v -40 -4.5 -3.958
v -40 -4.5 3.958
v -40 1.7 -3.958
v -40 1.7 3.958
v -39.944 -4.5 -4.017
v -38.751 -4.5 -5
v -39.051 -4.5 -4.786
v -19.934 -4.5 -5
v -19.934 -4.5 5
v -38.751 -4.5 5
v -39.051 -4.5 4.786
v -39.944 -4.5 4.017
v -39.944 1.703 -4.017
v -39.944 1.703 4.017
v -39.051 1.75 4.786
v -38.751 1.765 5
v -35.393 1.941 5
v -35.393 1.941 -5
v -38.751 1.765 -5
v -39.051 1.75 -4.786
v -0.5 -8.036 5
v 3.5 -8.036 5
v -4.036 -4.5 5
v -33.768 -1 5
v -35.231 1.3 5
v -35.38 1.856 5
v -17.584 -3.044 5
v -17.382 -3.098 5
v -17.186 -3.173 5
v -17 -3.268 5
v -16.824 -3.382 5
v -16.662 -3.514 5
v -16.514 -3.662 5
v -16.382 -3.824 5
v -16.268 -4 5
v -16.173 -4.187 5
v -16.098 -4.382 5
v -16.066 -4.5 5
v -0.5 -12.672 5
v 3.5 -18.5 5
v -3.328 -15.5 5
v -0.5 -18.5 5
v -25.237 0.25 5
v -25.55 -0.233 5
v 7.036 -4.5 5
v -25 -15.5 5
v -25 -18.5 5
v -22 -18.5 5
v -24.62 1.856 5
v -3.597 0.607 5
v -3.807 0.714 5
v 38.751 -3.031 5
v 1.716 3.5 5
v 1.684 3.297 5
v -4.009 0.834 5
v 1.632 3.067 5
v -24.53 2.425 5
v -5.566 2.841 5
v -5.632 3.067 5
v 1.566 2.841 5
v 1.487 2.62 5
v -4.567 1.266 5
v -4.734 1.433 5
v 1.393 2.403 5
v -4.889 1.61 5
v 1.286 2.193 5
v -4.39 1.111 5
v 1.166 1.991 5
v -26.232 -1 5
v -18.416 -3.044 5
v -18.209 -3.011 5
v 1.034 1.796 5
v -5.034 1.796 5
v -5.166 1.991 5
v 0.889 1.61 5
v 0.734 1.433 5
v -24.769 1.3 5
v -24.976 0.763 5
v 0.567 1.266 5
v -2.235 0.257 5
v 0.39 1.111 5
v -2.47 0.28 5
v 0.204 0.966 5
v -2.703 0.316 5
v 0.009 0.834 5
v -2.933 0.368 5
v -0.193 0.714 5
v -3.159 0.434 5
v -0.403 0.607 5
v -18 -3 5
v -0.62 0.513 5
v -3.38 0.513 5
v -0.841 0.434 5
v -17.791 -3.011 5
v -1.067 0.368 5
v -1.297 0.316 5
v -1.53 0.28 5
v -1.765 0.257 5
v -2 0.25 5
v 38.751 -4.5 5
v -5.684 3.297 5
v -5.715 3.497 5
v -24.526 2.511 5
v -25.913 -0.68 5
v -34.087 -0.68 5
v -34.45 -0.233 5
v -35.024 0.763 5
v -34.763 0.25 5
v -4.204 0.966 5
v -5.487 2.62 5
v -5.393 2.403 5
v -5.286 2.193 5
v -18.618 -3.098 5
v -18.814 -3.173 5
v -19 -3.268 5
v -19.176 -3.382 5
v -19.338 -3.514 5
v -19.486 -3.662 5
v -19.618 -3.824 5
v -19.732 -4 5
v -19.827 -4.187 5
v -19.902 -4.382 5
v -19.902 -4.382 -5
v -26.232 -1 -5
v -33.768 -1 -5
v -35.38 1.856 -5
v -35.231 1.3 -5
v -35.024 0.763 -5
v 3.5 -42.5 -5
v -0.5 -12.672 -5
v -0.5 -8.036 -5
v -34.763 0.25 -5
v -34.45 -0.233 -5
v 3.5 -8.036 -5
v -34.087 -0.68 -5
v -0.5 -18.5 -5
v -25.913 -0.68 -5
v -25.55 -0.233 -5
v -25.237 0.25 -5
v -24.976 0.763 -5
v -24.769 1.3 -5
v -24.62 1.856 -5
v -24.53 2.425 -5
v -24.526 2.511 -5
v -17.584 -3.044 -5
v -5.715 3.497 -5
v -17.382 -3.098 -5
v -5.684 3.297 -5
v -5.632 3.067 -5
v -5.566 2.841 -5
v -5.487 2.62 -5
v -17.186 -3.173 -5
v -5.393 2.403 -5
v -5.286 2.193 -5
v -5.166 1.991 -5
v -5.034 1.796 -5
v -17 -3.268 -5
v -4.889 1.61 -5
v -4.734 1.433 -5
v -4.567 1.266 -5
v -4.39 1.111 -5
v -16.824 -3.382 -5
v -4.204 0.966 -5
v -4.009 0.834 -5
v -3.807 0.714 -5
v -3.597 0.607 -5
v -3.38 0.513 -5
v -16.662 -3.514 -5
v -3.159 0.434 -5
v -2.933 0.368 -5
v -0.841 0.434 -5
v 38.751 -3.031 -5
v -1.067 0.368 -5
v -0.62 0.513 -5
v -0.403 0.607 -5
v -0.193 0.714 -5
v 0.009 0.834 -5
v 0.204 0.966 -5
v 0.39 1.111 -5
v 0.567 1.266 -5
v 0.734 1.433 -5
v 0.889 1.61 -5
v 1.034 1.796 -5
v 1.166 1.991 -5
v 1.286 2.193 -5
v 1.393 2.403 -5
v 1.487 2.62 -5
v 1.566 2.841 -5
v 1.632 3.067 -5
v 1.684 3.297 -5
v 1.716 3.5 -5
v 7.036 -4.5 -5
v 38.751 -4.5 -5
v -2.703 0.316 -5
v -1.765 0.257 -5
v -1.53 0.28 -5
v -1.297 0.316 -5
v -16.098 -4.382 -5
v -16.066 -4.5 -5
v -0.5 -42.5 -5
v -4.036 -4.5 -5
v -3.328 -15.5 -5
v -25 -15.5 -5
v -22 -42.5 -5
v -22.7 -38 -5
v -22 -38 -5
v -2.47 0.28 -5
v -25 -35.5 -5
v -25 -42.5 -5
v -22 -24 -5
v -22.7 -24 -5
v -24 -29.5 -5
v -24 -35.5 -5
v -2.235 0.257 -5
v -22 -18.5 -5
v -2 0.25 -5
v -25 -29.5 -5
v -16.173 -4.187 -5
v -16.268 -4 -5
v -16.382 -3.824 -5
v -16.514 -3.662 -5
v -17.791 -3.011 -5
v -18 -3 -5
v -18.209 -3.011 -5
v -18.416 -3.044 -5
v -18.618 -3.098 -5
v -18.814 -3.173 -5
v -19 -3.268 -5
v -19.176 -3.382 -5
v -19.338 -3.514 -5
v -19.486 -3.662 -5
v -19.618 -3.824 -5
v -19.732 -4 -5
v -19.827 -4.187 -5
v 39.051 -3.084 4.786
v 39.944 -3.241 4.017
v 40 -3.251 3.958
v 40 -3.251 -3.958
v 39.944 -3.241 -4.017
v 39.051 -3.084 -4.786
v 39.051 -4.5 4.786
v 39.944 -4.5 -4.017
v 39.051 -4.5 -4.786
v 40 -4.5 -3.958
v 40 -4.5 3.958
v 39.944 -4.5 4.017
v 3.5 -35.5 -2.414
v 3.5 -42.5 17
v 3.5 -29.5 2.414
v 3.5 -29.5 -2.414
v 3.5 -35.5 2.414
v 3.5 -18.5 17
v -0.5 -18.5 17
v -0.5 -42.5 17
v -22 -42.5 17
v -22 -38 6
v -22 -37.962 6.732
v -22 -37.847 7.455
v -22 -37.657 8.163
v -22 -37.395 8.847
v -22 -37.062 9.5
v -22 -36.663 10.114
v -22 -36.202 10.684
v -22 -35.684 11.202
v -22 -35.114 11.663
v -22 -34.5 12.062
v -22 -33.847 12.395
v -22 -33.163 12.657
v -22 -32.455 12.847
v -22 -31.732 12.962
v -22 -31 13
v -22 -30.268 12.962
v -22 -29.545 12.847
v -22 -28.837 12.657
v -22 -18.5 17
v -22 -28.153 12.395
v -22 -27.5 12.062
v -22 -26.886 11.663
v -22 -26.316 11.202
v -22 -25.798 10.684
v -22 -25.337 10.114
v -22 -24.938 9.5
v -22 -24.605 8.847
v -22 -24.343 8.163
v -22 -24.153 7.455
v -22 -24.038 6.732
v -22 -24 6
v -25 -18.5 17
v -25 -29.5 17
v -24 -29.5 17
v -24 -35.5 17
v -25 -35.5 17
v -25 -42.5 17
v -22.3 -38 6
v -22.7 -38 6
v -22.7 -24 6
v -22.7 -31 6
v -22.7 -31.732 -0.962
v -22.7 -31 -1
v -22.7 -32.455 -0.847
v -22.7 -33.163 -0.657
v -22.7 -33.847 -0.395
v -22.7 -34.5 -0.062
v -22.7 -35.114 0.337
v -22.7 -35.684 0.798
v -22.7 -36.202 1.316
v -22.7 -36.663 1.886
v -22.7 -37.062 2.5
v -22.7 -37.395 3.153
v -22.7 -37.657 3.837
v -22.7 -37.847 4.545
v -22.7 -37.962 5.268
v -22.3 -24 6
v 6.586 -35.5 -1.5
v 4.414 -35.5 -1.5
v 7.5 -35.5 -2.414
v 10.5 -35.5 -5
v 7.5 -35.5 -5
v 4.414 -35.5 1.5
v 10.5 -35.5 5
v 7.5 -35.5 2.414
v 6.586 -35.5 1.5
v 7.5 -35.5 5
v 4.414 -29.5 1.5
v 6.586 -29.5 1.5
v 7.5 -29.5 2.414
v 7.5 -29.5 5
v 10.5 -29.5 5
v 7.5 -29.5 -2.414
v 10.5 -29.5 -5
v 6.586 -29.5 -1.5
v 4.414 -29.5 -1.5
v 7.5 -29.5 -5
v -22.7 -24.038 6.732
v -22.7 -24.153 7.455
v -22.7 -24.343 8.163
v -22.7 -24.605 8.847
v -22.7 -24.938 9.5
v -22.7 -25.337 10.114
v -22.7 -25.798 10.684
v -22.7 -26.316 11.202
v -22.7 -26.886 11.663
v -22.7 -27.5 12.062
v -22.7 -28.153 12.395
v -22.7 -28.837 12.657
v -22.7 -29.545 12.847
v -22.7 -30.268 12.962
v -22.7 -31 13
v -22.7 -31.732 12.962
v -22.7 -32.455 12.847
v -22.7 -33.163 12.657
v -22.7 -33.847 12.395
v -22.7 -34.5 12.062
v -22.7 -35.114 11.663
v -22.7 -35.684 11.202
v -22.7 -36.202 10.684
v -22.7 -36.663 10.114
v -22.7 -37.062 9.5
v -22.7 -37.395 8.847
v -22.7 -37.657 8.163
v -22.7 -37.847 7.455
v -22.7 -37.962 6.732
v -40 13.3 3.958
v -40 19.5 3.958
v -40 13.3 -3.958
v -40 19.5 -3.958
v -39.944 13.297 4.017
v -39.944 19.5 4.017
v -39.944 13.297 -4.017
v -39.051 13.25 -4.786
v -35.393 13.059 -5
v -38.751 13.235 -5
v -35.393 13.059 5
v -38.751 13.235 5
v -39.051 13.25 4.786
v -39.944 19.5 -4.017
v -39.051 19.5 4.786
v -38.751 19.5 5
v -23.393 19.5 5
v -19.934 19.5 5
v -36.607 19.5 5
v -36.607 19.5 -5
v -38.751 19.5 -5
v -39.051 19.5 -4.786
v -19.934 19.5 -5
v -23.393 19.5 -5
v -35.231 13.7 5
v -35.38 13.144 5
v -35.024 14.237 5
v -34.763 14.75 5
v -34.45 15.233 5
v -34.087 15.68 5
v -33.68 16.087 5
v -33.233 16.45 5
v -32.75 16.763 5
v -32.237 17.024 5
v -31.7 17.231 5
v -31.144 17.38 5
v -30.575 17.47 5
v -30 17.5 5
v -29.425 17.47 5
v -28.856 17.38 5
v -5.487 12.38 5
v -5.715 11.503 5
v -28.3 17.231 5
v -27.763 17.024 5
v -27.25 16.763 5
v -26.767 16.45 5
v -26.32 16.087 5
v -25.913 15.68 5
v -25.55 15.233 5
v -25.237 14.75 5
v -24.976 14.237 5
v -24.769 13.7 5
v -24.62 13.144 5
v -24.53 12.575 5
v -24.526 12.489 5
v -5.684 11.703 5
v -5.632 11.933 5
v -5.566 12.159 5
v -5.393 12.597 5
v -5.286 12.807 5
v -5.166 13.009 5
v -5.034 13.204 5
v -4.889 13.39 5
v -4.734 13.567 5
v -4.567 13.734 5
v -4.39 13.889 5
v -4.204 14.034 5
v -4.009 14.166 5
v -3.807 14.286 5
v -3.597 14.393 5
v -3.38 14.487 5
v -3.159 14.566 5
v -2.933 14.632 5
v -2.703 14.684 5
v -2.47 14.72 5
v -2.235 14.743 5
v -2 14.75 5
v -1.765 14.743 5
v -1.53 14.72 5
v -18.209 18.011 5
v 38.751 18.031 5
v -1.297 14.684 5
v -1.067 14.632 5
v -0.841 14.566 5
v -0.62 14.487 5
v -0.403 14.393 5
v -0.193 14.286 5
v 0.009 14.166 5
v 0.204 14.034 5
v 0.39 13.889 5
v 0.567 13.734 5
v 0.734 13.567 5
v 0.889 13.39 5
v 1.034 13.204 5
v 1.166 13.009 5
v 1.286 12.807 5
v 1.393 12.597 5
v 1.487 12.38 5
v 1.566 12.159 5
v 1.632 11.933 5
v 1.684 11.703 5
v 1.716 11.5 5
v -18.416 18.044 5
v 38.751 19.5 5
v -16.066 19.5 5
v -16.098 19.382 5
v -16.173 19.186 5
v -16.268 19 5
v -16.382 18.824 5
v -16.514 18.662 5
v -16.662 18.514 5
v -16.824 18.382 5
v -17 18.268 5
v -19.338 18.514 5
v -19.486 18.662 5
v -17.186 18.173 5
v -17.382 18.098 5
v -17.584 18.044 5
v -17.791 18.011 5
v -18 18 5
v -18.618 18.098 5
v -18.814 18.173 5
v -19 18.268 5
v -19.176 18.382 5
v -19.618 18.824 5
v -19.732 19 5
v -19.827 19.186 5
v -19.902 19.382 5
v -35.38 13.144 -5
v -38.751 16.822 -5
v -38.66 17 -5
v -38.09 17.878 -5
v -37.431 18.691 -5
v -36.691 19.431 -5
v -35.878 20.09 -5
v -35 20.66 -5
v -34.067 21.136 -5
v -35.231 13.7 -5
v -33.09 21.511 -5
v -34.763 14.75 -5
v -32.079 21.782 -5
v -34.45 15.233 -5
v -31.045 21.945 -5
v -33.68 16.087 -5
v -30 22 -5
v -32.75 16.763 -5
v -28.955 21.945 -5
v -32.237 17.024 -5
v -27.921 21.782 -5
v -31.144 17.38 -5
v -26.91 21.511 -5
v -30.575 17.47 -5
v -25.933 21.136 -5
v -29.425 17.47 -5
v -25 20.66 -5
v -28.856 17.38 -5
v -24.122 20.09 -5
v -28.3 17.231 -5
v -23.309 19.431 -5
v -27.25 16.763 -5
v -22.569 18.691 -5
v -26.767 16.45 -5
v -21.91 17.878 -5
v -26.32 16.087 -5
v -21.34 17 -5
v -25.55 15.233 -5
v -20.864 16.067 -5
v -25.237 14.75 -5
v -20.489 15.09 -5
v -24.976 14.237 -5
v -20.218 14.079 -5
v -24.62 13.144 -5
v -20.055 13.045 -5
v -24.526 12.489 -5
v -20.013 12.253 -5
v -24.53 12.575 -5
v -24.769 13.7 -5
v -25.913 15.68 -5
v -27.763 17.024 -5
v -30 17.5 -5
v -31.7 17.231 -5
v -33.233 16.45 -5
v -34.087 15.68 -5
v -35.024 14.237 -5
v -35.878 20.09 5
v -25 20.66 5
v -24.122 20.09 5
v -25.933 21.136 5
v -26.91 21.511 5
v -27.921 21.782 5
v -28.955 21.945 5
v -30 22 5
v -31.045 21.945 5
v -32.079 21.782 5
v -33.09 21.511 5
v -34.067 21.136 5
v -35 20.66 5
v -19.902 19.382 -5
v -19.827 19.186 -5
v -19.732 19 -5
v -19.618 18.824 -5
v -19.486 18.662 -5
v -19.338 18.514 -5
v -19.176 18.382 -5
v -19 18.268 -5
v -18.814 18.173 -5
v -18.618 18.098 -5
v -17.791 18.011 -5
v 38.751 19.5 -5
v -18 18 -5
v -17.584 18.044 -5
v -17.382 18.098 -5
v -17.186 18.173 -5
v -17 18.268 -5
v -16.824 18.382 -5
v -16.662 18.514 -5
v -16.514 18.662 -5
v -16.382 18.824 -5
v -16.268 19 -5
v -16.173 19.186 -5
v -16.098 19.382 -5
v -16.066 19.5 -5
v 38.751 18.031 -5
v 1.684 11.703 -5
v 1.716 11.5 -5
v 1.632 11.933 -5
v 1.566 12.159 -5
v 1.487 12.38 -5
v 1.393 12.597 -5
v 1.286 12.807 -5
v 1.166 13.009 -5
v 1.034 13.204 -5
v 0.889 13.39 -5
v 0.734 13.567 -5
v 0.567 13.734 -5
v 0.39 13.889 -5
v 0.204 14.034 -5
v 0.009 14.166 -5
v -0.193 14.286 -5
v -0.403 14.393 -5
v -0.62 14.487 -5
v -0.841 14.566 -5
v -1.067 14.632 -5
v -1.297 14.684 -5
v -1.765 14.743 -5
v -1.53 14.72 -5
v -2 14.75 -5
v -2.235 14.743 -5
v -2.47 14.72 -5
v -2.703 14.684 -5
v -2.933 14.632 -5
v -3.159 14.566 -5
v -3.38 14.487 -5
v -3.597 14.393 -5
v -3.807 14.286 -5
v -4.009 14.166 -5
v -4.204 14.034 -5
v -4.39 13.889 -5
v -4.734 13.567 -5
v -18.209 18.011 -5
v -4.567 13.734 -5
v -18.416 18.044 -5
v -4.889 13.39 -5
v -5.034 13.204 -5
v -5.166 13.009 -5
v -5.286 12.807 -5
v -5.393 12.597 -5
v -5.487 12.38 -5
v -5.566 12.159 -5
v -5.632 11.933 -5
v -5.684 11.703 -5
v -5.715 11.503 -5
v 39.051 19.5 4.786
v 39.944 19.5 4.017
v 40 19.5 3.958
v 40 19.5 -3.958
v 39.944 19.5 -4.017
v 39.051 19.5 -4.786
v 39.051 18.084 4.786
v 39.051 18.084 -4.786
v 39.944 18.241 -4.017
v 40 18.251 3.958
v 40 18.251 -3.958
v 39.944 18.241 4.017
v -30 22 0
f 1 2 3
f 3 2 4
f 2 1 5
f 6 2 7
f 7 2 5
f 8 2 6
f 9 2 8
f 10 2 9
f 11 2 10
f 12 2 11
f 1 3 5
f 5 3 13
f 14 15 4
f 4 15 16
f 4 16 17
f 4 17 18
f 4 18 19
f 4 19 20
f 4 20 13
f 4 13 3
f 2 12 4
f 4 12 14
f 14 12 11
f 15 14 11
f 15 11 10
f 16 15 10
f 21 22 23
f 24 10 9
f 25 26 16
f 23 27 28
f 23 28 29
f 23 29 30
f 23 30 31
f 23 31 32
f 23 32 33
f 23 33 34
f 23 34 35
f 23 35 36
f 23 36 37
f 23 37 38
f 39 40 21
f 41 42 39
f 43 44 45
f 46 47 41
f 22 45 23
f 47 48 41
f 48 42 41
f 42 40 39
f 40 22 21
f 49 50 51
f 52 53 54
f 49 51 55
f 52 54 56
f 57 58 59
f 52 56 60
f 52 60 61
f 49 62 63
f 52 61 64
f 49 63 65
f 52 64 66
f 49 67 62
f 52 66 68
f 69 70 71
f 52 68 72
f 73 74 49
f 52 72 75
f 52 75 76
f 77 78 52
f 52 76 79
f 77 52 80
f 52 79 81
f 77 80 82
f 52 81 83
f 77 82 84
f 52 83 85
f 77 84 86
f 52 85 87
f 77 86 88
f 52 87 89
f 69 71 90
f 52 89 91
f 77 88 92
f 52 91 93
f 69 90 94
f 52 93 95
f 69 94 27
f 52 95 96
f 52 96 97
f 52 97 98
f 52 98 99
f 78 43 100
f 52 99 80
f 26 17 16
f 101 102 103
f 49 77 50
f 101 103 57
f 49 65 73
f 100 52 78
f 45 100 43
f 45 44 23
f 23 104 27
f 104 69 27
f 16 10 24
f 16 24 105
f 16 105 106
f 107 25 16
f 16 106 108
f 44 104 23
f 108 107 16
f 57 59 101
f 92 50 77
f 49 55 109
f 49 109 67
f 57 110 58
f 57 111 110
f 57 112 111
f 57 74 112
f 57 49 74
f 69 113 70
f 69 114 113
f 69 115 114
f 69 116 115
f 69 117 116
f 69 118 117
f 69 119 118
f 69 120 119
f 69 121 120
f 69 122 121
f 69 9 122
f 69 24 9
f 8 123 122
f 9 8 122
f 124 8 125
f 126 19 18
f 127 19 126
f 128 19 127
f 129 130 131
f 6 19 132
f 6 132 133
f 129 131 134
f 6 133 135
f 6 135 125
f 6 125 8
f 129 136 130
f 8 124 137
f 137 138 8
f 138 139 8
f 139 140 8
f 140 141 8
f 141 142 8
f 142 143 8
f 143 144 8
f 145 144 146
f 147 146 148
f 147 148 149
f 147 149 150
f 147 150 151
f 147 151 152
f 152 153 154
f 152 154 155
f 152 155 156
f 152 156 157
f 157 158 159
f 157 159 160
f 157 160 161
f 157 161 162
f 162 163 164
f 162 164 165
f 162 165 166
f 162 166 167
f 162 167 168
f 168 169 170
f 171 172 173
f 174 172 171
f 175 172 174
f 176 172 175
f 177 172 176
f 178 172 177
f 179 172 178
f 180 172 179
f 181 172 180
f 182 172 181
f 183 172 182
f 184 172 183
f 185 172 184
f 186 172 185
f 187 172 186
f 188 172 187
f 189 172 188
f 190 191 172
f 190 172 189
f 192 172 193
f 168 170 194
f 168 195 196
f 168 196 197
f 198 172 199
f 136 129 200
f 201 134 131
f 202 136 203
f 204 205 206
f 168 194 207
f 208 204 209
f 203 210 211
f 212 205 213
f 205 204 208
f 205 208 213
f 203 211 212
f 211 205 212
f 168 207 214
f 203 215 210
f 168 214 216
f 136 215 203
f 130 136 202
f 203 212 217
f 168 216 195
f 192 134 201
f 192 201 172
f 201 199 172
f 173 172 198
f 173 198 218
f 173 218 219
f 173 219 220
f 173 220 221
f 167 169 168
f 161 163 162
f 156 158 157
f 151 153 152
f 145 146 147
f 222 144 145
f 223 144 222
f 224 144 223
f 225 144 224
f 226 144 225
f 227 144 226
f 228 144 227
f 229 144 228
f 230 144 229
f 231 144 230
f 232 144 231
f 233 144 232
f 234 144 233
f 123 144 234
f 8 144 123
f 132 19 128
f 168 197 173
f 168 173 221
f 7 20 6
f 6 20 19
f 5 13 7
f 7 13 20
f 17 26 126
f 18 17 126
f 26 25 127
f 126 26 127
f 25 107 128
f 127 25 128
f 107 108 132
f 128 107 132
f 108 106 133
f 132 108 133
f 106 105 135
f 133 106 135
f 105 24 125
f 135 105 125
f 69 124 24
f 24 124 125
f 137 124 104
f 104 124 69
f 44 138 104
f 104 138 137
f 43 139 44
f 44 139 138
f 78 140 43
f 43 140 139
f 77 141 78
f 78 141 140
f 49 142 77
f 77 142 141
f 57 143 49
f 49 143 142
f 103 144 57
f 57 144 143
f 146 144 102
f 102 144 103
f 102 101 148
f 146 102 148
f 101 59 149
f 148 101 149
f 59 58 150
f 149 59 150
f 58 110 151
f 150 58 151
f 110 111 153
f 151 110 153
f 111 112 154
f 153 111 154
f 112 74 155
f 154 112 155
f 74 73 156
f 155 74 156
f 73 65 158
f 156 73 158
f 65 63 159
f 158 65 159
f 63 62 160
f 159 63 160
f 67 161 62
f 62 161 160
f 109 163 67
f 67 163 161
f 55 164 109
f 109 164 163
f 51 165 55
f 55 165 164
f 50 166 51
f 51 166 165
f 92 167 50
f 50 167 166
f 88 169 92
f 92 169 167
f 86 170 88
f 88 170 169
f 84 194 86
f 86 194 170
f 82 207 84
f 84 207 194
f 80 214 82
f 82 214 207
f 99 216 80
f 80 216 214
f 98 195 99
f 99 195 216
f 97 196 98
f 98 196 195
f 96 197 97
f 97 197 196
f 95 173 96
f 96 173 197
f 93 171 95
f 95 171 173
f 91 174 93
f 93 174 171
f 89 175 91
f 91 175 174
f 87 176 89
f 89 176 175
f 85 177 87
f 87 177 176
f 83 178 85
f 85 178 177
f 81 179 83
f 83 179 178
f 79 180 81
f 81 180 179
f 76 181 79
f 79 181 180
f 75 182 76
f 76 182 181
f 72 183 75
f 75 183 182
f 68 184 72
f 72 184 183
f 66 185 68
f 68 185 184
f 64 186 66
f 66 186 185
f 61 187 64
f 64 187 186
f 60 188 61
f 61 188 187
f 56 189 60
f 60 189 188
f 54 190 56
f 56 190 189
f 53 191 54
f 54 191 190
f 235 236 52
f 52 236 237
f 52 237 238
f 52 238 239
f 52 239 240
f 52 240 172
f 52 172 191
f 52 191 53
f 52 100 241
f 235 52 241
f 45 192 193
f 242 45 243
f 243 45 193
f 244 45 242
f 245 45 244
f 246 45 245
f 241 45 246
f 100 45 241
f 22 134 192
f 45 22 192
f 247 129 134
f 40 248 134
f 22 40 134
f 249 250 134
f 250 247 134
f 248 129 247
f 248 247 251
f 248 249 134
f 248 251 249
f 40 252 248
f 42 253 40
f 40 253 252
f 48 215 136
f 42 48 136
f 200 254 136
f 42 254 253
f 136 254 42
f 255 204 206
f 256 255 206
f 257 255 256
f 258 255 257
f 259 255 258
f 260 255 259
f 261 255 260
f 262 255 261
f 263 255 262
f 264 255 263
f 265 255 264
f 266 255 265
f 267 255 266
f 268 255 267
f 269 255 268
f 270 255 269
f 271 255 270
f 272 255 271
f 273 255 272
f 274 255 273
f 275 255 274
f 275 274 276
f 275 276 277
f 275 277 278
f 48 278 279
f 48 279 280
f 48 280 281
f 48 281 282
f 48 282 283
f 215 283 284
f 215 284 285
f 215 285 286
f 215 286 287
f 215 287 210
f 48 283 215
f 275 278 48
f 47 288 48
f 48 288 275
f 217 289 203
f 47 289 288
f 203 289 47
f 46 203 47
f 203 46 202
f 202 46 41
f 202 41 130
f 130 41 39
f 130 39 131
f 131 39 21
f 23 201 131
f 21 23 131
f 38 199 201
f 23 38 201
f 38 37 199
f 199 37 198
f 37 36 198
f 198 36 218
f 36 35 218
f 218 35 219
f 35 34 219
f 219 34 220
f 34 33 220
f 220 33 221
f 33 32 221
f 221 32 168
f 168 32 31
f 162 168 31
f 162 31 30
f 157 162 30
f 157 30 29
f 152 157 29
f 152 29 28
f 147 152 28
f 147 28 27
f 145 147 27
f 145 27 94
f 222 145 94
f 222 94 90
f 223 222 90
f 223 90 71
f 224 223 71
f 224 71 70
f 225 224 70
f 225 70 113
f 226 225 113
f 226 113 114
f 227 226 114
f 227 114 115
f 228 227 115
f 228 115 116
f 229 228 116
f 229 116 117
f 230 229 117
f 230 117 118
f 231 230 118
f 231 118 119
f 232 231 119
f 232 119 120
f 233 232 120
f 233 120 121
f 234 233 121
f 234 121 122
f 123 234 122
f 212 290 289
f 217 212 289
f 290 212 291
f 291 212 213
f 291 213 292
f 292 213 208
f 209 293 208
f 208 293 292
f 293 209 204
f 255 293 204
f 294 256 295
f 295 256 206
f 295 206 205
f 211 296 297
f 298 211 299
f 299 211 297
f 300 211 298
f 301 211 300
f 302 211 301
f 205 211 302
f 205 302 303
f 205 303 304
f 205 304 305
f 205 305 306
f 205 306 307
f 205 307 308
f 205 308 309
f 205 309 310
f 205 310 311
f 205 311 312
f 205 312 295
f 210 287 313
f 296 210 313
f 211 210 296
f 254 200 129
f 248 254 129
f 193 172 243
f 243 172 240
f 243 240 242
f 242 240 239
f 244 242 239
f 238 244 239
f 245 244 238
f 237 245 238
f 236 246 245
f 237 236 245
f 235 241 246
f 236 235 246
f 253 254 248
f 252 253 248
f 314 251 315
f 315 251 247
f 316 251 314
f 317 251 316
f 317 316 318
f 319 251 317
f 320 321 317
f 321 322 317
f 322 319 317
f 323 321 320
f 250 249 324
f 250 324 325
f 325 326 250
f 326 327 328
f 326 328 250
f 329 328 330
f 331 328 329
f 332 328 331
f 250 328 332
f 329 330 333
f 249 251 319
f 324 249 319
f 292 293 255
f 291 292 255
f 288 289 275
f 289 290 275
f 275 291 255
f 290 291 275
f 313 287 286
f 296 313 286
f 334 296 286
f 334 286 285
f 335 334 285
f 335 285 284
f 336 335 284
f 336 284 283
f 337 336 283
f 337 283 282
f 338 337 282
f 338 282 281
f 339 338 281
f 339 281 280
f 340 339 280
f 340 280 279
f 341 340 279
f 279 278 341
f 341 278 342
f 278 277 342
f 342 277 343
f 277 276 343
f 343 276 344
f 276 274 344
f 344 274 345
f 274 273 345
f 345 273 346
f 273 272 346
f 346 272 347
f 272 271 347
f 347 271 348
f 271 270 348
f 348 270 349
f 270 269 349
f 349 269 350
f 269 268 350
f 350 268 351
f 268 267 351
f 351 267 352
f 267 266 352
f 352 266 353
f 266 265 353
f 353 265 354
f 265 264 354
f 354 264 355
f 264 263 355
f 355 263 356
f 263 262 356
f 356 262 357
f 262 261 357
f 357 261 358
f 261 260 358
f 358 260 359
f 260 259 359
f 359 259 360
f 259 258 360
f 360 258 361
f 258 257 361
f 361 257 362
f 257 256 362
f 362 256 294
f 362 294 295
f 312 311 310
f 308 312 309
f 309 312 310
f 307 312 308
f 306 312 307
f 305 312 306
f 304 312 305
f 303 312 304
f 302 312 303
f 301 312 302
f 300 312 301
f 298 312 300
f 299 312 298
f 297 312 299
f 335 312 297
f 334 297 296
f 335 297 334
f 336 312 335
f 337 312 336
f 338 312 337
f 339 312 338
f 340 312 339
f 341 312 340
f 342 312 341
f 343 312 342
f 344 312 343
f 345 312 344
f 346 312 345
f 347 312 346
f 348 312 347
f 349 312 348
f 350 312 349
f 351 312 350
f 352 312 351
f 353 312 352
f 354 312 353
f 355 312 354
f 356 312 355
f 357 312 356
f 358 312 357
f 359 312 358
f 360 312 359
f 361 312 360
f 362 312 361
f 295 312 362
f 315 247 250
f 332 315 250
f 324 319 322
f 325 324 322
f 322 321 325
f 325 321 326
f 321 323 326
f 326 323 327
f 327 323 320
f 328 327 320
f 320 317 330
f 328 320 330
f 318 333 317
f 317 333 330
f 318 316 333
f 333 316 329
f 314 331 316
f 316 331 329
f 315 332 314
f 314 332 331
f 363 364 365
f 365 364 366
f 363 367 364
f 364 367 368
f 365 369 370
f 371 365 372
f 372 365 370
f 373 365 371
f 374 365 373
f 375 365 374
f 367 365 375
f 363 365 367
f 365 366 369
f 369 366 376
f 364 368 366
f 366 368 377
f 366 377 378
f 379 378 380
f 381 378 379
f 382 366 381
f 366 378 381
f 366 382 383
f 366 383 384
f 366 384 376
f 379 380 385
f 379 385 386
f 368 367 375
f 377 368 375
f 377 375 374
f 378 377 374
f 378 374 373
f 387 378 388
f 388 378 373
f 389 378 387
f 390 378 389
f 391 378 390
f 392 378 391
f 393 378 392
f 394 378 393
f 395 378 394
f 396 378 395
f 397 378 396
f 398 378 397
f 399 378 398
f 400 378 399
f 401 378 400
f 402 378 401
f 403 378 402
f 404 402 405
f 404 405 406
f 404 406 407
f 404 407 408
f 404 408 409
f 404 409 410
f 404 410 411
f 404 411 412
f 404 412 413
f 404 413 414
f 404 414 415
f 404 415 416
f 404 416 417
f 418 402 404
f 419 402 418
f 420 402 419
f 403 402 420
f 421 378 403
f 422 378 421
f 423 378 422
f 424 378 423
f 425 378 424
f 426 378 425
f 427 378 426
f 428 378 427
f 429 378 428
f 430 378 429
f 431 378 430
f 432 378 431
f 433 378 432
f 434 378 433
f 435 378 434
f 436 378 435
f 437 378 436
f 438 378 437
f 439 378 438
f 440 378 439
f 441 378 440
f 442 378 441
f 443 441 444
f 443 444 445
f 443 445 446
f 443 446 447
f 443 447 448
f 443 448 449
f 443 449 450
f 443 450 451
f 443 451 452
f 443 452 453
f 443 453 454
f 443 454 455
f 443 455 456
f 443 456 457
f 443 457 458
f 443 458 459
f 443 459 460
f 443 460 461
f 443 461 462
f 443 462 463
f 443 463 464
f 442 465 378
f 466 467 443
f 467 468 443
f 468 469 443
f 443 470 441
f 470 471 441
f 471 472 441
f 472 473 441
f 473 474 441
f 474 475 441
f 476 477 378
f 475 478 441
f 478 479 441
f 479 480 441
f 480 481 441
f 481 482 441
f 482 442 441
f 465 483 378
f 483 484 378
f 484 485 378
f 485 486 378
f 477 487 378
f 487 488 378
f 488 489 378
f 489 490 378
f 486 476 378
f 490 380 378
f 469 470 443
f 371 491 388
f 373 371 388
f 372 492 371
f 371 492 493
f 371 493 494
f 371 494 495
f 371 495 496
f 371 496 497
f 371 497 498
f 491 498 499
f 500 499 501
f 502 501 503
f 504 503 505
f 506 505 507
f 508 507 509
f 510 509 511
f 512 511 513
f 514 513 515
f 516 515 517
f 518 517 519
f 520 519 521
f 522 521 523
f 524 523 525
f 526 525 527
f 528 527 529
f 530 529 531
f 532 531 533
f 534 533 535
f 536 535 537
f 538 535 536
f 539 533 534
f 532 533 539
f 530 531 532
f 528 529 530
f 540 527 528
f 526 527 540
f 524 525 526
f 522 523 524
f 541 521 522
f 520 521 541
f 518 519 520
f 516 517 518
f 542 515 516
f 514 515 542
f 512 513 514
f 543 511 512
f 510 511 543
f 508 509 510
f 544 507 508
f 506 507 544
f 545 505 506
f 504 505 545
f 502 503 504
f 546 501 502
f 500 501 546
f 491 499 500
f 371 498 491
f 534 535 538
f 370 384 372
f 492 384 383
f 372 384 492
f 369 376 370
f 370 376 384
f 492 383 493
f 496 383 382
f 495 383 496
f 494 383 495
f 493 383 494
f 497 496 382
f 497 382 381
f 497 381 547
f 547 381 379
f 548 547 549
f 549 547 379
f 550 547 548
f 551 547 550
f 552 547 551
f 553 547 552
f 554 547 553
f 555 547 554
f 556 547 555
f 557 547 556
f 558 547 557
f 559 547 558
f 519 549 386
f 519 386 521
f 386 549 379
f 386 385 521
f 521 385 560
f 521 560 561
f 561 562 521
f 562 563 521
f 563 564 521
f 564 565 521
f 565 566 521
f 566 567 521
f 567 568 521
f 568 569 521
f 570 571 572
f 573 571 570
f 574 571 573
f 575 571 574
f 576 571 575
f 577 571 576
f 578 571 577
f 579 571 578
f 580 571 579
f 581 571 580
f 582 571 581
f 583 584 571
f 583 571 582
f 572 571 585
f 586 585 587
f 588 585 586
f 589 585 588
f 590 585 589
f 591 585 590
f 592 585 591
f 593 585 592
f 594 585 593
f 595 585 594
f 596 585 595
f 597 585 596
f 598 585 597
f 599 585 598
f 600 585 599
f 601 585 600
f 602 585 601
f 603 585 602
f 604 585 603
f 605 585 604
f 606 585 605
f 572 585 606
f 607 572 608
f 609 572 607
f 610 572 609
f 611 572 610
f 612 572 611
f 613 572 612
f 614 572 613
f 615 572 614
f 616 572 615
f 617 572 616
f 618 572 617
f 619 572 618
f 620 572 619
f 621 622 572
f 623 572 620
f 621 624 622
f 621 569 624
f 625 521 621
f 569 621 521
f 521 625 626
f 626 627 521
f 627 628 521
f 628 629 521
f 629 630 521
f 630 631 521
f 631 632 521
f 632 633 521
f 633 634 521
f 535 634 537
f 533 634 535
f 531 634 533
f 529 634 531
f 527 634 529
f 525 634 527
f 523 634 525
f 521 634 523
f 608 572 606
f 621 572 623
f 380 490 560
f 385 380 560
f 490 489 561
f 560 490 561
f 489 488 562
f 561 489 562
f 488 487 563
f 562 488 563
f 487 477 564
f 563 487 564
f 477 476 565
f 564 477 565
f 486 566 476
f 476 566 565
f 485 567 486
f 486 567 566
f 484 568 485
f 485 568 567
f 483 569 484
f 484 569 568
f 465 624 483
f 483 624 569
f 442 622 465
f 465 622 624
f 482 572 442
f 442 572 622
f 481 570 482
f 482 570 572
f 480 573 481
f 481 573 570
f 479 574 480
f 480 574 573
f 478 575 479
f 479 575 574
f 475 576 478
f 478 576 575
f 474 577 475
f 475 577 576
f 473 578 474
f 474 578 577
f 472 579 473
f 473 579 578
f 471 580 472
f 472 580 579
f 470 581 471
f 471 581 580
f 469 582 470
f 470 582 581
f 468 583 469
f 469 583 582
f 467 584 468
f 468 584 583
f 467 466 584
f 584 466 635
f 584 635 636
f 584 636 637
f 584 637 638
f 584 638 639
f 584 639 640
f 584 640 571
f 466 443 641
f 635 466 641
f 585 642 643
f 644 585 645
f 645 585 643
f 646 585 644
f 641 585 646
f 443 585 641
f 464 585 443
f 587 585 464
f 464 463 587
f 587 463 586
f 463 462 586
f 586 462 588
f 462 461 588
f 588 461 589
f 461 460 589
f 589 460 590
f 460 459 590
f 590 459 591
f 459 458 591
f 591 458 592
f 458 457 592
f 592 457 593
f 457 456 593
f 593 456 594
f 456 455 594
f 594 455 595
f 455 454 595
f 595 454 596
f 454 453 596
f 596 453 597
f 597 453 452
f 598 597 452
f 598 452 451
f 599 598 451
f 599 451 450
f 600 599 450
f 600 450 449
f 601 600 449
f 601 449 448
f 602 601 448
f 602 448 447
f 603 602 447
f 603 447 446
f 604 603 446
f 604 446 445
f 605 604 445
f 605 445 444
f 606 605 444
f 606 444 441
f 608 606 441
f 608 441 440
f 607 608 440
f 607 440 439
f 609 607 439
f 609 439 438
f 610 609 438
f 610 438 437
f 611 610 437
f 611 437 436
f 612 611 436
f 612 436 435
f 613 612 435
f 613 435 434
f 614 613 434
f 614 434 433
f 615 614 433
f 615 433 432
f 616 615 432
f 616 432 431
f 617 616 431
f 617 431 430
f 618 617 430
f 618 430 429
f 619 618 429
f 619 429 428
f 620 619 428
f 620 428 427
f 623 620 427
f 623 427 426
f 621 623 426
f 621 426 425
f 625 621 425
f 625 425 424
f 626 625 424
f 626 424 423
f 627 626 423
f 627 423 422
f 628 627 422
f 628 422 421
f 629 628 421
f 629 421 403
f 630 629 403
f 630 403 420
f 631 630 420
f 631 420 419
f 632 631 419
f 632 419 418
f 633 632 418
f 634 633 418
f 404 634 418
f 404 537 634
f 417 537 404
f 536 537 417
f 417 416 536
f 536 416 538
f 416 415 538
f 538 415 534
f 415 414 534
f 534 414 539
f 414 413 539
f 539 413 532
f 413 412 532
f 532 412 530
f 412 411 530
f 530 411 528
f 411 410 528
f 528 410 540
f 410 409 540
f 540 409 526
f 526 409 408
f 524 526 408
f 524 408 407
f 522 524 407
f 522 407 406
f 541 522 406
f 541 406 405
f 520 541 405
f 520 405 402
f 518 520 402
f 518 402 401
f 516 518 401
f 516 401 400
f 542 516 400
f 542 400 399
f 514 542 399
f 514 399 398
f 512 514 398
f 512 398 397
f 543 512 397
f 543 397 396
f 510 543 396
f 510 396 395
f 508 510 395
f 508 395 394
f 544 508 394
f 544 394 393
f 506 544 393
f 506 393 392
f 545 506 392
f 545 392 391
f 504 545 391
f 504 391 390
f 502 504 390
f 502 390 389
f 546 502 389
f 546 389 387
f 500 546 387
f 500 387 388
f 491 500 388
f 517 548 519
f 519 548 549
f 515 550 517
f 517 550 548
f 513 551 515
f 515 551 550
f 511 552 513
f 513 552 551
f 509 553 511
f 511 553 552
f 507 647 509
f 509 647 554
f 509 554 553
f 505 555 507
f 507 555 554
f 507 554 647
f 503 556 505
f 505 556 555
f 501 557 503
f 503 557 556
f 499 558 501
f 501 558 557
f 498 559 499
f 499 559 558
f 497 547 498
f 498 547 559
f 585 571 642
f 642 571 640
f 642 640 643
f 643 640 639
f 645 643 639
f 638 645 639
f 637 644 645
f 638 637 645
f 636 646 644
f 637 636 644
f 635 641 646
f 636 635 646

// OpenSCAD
// gopro fix ti phantom for moving

$fn=60;

//Set to false for simpler version that does not need support but is less stable
spine=false;

rotate ([90,0,0]) fixer();
translate ([0,15,0]) rotate ([-90,0,0]) fixer(ext=true);

module fixer(ext) {
	difference () 
	{
		fixer_plain(ext);
		fixer_void(ext);
	}

	if (spine==true) 
	{
		translate ([-40+28,-1.775,-1.5]) cube ([6,3.45,10.5],center=true);
	}
}

module fixer_plain(ext)
{
	intersection () 
	{
		union()
		{
			cube ([80,10,9],center=true);
			if(ext)
			{
				translate ([-30, 0, -3]) rotate ([90,0,0]) cylinder (r=10, h=10, center=true);
			}
		}
		scale ([42,13,14]) cylinder (r=1, h=1, center=true,$fn=100);
	}
	if(!ext)
	{
		translate ([1.5, 0, 23.5]) cube([4, 10, 38], center=true);
		translate ([3.5, 0, 4.5]) rotate([0, 45, 0]) cube([5, 10, 5], center=true);
		translate ([-.5, 0, 4.5]) rotate([0, 45, 0]) cube([5, 10, 5], center=true);
		translate ([1.5, 11, 30.5]) cube([4, 12, 24], center=true);
		*translate ([1.5, 5, 30.5]) rotate([0, 0, 45]) cube([2.8, 2.8, 24], center=true);
		
		translate ([9, 0, 32.5]) cube([3, 10, 6], center=true);
		translate ([6, 0, 32.5]) cube([5, 3, 6], center=true);
		translate ([3.5, -1, 32.5]) rotate([0, 0, 45]) cube([2, 2, 6], center=true);
		translate ([7.5, -1, 32.5]) rotate([0, 0, 45]) cube([2, 2, 6], center=true);
		translate ([3.5, 1, 32.5]) rotate([0, 0, 45]) cube([2, 2, 6], center=true);
		translate ([7.5, 1, 32.5]) rotate([0, 0, 45]) cube([2, 2, 6], center=true);
		
		translate ([-12.75, 0, 17]) cube([24.5, 10, 3], center=true);
		translate ([-.5, 0, 15.5]) rotate([0, 45, 0]) cube([4, 10, 4], center=true);
		translate ([-23.5, 0, 30.5]) cube([3, 10, 24], center=true);
		translate ([-23.5, 11, 30.5]) cube([3, 12, 24], center=true);
		*translate ([-24, 5, 30.5]) rotate([0, 0, 45]) cube([1.4, 1.4, 24], center=true);
	}
}

module fixer_void(ext)
{
	translate ([-40+38,0,-4]) rotate ([90,0,0]) cylinder (r=3.75,h=11,center=true,$fn=100);
	translate ([22,0,-5]) rotate ([0,-10,0]) cube ([45,11,10],center=true);
	translate ([-22,0,-7.65]) rotate ([0,3,0]) cube ([40,11,10],center=true);

	if(ext)
	{
		translate ([-30, 0, -3]) rotate ([90,0,0]) cylinder (r=5.5, h=11, center=true);
	}
	else
	{
		intersection()
		{
			translate ([-30, 0, -3]) rotate ([90,0,0]) cylinder (r=5.5, h=11, center=true);
			translate ([-30, 0, -1.5]) cube([11, 12, 5], true);
		}
		translate ([-25, 6, 32.5]) cube([2, 23, 6], center=true);
		translate ([-22.3, 0, 31]) cube([.8, 12, 14], center=true);
		translate ([-22.3, 6, 31]) rotate([0, 90, 0]) cylinder(r=7, h=.8, center=true);
	}

	translate ([-18,0,5]) rotate ([90,0,0]) cylinder(r=2, h=11, center=true);
	
	if (spine==true) 
	{
		translate ([-40+28,+1.775,-1.5]) cube ([8,3.65,8],center=true);
	}
}
